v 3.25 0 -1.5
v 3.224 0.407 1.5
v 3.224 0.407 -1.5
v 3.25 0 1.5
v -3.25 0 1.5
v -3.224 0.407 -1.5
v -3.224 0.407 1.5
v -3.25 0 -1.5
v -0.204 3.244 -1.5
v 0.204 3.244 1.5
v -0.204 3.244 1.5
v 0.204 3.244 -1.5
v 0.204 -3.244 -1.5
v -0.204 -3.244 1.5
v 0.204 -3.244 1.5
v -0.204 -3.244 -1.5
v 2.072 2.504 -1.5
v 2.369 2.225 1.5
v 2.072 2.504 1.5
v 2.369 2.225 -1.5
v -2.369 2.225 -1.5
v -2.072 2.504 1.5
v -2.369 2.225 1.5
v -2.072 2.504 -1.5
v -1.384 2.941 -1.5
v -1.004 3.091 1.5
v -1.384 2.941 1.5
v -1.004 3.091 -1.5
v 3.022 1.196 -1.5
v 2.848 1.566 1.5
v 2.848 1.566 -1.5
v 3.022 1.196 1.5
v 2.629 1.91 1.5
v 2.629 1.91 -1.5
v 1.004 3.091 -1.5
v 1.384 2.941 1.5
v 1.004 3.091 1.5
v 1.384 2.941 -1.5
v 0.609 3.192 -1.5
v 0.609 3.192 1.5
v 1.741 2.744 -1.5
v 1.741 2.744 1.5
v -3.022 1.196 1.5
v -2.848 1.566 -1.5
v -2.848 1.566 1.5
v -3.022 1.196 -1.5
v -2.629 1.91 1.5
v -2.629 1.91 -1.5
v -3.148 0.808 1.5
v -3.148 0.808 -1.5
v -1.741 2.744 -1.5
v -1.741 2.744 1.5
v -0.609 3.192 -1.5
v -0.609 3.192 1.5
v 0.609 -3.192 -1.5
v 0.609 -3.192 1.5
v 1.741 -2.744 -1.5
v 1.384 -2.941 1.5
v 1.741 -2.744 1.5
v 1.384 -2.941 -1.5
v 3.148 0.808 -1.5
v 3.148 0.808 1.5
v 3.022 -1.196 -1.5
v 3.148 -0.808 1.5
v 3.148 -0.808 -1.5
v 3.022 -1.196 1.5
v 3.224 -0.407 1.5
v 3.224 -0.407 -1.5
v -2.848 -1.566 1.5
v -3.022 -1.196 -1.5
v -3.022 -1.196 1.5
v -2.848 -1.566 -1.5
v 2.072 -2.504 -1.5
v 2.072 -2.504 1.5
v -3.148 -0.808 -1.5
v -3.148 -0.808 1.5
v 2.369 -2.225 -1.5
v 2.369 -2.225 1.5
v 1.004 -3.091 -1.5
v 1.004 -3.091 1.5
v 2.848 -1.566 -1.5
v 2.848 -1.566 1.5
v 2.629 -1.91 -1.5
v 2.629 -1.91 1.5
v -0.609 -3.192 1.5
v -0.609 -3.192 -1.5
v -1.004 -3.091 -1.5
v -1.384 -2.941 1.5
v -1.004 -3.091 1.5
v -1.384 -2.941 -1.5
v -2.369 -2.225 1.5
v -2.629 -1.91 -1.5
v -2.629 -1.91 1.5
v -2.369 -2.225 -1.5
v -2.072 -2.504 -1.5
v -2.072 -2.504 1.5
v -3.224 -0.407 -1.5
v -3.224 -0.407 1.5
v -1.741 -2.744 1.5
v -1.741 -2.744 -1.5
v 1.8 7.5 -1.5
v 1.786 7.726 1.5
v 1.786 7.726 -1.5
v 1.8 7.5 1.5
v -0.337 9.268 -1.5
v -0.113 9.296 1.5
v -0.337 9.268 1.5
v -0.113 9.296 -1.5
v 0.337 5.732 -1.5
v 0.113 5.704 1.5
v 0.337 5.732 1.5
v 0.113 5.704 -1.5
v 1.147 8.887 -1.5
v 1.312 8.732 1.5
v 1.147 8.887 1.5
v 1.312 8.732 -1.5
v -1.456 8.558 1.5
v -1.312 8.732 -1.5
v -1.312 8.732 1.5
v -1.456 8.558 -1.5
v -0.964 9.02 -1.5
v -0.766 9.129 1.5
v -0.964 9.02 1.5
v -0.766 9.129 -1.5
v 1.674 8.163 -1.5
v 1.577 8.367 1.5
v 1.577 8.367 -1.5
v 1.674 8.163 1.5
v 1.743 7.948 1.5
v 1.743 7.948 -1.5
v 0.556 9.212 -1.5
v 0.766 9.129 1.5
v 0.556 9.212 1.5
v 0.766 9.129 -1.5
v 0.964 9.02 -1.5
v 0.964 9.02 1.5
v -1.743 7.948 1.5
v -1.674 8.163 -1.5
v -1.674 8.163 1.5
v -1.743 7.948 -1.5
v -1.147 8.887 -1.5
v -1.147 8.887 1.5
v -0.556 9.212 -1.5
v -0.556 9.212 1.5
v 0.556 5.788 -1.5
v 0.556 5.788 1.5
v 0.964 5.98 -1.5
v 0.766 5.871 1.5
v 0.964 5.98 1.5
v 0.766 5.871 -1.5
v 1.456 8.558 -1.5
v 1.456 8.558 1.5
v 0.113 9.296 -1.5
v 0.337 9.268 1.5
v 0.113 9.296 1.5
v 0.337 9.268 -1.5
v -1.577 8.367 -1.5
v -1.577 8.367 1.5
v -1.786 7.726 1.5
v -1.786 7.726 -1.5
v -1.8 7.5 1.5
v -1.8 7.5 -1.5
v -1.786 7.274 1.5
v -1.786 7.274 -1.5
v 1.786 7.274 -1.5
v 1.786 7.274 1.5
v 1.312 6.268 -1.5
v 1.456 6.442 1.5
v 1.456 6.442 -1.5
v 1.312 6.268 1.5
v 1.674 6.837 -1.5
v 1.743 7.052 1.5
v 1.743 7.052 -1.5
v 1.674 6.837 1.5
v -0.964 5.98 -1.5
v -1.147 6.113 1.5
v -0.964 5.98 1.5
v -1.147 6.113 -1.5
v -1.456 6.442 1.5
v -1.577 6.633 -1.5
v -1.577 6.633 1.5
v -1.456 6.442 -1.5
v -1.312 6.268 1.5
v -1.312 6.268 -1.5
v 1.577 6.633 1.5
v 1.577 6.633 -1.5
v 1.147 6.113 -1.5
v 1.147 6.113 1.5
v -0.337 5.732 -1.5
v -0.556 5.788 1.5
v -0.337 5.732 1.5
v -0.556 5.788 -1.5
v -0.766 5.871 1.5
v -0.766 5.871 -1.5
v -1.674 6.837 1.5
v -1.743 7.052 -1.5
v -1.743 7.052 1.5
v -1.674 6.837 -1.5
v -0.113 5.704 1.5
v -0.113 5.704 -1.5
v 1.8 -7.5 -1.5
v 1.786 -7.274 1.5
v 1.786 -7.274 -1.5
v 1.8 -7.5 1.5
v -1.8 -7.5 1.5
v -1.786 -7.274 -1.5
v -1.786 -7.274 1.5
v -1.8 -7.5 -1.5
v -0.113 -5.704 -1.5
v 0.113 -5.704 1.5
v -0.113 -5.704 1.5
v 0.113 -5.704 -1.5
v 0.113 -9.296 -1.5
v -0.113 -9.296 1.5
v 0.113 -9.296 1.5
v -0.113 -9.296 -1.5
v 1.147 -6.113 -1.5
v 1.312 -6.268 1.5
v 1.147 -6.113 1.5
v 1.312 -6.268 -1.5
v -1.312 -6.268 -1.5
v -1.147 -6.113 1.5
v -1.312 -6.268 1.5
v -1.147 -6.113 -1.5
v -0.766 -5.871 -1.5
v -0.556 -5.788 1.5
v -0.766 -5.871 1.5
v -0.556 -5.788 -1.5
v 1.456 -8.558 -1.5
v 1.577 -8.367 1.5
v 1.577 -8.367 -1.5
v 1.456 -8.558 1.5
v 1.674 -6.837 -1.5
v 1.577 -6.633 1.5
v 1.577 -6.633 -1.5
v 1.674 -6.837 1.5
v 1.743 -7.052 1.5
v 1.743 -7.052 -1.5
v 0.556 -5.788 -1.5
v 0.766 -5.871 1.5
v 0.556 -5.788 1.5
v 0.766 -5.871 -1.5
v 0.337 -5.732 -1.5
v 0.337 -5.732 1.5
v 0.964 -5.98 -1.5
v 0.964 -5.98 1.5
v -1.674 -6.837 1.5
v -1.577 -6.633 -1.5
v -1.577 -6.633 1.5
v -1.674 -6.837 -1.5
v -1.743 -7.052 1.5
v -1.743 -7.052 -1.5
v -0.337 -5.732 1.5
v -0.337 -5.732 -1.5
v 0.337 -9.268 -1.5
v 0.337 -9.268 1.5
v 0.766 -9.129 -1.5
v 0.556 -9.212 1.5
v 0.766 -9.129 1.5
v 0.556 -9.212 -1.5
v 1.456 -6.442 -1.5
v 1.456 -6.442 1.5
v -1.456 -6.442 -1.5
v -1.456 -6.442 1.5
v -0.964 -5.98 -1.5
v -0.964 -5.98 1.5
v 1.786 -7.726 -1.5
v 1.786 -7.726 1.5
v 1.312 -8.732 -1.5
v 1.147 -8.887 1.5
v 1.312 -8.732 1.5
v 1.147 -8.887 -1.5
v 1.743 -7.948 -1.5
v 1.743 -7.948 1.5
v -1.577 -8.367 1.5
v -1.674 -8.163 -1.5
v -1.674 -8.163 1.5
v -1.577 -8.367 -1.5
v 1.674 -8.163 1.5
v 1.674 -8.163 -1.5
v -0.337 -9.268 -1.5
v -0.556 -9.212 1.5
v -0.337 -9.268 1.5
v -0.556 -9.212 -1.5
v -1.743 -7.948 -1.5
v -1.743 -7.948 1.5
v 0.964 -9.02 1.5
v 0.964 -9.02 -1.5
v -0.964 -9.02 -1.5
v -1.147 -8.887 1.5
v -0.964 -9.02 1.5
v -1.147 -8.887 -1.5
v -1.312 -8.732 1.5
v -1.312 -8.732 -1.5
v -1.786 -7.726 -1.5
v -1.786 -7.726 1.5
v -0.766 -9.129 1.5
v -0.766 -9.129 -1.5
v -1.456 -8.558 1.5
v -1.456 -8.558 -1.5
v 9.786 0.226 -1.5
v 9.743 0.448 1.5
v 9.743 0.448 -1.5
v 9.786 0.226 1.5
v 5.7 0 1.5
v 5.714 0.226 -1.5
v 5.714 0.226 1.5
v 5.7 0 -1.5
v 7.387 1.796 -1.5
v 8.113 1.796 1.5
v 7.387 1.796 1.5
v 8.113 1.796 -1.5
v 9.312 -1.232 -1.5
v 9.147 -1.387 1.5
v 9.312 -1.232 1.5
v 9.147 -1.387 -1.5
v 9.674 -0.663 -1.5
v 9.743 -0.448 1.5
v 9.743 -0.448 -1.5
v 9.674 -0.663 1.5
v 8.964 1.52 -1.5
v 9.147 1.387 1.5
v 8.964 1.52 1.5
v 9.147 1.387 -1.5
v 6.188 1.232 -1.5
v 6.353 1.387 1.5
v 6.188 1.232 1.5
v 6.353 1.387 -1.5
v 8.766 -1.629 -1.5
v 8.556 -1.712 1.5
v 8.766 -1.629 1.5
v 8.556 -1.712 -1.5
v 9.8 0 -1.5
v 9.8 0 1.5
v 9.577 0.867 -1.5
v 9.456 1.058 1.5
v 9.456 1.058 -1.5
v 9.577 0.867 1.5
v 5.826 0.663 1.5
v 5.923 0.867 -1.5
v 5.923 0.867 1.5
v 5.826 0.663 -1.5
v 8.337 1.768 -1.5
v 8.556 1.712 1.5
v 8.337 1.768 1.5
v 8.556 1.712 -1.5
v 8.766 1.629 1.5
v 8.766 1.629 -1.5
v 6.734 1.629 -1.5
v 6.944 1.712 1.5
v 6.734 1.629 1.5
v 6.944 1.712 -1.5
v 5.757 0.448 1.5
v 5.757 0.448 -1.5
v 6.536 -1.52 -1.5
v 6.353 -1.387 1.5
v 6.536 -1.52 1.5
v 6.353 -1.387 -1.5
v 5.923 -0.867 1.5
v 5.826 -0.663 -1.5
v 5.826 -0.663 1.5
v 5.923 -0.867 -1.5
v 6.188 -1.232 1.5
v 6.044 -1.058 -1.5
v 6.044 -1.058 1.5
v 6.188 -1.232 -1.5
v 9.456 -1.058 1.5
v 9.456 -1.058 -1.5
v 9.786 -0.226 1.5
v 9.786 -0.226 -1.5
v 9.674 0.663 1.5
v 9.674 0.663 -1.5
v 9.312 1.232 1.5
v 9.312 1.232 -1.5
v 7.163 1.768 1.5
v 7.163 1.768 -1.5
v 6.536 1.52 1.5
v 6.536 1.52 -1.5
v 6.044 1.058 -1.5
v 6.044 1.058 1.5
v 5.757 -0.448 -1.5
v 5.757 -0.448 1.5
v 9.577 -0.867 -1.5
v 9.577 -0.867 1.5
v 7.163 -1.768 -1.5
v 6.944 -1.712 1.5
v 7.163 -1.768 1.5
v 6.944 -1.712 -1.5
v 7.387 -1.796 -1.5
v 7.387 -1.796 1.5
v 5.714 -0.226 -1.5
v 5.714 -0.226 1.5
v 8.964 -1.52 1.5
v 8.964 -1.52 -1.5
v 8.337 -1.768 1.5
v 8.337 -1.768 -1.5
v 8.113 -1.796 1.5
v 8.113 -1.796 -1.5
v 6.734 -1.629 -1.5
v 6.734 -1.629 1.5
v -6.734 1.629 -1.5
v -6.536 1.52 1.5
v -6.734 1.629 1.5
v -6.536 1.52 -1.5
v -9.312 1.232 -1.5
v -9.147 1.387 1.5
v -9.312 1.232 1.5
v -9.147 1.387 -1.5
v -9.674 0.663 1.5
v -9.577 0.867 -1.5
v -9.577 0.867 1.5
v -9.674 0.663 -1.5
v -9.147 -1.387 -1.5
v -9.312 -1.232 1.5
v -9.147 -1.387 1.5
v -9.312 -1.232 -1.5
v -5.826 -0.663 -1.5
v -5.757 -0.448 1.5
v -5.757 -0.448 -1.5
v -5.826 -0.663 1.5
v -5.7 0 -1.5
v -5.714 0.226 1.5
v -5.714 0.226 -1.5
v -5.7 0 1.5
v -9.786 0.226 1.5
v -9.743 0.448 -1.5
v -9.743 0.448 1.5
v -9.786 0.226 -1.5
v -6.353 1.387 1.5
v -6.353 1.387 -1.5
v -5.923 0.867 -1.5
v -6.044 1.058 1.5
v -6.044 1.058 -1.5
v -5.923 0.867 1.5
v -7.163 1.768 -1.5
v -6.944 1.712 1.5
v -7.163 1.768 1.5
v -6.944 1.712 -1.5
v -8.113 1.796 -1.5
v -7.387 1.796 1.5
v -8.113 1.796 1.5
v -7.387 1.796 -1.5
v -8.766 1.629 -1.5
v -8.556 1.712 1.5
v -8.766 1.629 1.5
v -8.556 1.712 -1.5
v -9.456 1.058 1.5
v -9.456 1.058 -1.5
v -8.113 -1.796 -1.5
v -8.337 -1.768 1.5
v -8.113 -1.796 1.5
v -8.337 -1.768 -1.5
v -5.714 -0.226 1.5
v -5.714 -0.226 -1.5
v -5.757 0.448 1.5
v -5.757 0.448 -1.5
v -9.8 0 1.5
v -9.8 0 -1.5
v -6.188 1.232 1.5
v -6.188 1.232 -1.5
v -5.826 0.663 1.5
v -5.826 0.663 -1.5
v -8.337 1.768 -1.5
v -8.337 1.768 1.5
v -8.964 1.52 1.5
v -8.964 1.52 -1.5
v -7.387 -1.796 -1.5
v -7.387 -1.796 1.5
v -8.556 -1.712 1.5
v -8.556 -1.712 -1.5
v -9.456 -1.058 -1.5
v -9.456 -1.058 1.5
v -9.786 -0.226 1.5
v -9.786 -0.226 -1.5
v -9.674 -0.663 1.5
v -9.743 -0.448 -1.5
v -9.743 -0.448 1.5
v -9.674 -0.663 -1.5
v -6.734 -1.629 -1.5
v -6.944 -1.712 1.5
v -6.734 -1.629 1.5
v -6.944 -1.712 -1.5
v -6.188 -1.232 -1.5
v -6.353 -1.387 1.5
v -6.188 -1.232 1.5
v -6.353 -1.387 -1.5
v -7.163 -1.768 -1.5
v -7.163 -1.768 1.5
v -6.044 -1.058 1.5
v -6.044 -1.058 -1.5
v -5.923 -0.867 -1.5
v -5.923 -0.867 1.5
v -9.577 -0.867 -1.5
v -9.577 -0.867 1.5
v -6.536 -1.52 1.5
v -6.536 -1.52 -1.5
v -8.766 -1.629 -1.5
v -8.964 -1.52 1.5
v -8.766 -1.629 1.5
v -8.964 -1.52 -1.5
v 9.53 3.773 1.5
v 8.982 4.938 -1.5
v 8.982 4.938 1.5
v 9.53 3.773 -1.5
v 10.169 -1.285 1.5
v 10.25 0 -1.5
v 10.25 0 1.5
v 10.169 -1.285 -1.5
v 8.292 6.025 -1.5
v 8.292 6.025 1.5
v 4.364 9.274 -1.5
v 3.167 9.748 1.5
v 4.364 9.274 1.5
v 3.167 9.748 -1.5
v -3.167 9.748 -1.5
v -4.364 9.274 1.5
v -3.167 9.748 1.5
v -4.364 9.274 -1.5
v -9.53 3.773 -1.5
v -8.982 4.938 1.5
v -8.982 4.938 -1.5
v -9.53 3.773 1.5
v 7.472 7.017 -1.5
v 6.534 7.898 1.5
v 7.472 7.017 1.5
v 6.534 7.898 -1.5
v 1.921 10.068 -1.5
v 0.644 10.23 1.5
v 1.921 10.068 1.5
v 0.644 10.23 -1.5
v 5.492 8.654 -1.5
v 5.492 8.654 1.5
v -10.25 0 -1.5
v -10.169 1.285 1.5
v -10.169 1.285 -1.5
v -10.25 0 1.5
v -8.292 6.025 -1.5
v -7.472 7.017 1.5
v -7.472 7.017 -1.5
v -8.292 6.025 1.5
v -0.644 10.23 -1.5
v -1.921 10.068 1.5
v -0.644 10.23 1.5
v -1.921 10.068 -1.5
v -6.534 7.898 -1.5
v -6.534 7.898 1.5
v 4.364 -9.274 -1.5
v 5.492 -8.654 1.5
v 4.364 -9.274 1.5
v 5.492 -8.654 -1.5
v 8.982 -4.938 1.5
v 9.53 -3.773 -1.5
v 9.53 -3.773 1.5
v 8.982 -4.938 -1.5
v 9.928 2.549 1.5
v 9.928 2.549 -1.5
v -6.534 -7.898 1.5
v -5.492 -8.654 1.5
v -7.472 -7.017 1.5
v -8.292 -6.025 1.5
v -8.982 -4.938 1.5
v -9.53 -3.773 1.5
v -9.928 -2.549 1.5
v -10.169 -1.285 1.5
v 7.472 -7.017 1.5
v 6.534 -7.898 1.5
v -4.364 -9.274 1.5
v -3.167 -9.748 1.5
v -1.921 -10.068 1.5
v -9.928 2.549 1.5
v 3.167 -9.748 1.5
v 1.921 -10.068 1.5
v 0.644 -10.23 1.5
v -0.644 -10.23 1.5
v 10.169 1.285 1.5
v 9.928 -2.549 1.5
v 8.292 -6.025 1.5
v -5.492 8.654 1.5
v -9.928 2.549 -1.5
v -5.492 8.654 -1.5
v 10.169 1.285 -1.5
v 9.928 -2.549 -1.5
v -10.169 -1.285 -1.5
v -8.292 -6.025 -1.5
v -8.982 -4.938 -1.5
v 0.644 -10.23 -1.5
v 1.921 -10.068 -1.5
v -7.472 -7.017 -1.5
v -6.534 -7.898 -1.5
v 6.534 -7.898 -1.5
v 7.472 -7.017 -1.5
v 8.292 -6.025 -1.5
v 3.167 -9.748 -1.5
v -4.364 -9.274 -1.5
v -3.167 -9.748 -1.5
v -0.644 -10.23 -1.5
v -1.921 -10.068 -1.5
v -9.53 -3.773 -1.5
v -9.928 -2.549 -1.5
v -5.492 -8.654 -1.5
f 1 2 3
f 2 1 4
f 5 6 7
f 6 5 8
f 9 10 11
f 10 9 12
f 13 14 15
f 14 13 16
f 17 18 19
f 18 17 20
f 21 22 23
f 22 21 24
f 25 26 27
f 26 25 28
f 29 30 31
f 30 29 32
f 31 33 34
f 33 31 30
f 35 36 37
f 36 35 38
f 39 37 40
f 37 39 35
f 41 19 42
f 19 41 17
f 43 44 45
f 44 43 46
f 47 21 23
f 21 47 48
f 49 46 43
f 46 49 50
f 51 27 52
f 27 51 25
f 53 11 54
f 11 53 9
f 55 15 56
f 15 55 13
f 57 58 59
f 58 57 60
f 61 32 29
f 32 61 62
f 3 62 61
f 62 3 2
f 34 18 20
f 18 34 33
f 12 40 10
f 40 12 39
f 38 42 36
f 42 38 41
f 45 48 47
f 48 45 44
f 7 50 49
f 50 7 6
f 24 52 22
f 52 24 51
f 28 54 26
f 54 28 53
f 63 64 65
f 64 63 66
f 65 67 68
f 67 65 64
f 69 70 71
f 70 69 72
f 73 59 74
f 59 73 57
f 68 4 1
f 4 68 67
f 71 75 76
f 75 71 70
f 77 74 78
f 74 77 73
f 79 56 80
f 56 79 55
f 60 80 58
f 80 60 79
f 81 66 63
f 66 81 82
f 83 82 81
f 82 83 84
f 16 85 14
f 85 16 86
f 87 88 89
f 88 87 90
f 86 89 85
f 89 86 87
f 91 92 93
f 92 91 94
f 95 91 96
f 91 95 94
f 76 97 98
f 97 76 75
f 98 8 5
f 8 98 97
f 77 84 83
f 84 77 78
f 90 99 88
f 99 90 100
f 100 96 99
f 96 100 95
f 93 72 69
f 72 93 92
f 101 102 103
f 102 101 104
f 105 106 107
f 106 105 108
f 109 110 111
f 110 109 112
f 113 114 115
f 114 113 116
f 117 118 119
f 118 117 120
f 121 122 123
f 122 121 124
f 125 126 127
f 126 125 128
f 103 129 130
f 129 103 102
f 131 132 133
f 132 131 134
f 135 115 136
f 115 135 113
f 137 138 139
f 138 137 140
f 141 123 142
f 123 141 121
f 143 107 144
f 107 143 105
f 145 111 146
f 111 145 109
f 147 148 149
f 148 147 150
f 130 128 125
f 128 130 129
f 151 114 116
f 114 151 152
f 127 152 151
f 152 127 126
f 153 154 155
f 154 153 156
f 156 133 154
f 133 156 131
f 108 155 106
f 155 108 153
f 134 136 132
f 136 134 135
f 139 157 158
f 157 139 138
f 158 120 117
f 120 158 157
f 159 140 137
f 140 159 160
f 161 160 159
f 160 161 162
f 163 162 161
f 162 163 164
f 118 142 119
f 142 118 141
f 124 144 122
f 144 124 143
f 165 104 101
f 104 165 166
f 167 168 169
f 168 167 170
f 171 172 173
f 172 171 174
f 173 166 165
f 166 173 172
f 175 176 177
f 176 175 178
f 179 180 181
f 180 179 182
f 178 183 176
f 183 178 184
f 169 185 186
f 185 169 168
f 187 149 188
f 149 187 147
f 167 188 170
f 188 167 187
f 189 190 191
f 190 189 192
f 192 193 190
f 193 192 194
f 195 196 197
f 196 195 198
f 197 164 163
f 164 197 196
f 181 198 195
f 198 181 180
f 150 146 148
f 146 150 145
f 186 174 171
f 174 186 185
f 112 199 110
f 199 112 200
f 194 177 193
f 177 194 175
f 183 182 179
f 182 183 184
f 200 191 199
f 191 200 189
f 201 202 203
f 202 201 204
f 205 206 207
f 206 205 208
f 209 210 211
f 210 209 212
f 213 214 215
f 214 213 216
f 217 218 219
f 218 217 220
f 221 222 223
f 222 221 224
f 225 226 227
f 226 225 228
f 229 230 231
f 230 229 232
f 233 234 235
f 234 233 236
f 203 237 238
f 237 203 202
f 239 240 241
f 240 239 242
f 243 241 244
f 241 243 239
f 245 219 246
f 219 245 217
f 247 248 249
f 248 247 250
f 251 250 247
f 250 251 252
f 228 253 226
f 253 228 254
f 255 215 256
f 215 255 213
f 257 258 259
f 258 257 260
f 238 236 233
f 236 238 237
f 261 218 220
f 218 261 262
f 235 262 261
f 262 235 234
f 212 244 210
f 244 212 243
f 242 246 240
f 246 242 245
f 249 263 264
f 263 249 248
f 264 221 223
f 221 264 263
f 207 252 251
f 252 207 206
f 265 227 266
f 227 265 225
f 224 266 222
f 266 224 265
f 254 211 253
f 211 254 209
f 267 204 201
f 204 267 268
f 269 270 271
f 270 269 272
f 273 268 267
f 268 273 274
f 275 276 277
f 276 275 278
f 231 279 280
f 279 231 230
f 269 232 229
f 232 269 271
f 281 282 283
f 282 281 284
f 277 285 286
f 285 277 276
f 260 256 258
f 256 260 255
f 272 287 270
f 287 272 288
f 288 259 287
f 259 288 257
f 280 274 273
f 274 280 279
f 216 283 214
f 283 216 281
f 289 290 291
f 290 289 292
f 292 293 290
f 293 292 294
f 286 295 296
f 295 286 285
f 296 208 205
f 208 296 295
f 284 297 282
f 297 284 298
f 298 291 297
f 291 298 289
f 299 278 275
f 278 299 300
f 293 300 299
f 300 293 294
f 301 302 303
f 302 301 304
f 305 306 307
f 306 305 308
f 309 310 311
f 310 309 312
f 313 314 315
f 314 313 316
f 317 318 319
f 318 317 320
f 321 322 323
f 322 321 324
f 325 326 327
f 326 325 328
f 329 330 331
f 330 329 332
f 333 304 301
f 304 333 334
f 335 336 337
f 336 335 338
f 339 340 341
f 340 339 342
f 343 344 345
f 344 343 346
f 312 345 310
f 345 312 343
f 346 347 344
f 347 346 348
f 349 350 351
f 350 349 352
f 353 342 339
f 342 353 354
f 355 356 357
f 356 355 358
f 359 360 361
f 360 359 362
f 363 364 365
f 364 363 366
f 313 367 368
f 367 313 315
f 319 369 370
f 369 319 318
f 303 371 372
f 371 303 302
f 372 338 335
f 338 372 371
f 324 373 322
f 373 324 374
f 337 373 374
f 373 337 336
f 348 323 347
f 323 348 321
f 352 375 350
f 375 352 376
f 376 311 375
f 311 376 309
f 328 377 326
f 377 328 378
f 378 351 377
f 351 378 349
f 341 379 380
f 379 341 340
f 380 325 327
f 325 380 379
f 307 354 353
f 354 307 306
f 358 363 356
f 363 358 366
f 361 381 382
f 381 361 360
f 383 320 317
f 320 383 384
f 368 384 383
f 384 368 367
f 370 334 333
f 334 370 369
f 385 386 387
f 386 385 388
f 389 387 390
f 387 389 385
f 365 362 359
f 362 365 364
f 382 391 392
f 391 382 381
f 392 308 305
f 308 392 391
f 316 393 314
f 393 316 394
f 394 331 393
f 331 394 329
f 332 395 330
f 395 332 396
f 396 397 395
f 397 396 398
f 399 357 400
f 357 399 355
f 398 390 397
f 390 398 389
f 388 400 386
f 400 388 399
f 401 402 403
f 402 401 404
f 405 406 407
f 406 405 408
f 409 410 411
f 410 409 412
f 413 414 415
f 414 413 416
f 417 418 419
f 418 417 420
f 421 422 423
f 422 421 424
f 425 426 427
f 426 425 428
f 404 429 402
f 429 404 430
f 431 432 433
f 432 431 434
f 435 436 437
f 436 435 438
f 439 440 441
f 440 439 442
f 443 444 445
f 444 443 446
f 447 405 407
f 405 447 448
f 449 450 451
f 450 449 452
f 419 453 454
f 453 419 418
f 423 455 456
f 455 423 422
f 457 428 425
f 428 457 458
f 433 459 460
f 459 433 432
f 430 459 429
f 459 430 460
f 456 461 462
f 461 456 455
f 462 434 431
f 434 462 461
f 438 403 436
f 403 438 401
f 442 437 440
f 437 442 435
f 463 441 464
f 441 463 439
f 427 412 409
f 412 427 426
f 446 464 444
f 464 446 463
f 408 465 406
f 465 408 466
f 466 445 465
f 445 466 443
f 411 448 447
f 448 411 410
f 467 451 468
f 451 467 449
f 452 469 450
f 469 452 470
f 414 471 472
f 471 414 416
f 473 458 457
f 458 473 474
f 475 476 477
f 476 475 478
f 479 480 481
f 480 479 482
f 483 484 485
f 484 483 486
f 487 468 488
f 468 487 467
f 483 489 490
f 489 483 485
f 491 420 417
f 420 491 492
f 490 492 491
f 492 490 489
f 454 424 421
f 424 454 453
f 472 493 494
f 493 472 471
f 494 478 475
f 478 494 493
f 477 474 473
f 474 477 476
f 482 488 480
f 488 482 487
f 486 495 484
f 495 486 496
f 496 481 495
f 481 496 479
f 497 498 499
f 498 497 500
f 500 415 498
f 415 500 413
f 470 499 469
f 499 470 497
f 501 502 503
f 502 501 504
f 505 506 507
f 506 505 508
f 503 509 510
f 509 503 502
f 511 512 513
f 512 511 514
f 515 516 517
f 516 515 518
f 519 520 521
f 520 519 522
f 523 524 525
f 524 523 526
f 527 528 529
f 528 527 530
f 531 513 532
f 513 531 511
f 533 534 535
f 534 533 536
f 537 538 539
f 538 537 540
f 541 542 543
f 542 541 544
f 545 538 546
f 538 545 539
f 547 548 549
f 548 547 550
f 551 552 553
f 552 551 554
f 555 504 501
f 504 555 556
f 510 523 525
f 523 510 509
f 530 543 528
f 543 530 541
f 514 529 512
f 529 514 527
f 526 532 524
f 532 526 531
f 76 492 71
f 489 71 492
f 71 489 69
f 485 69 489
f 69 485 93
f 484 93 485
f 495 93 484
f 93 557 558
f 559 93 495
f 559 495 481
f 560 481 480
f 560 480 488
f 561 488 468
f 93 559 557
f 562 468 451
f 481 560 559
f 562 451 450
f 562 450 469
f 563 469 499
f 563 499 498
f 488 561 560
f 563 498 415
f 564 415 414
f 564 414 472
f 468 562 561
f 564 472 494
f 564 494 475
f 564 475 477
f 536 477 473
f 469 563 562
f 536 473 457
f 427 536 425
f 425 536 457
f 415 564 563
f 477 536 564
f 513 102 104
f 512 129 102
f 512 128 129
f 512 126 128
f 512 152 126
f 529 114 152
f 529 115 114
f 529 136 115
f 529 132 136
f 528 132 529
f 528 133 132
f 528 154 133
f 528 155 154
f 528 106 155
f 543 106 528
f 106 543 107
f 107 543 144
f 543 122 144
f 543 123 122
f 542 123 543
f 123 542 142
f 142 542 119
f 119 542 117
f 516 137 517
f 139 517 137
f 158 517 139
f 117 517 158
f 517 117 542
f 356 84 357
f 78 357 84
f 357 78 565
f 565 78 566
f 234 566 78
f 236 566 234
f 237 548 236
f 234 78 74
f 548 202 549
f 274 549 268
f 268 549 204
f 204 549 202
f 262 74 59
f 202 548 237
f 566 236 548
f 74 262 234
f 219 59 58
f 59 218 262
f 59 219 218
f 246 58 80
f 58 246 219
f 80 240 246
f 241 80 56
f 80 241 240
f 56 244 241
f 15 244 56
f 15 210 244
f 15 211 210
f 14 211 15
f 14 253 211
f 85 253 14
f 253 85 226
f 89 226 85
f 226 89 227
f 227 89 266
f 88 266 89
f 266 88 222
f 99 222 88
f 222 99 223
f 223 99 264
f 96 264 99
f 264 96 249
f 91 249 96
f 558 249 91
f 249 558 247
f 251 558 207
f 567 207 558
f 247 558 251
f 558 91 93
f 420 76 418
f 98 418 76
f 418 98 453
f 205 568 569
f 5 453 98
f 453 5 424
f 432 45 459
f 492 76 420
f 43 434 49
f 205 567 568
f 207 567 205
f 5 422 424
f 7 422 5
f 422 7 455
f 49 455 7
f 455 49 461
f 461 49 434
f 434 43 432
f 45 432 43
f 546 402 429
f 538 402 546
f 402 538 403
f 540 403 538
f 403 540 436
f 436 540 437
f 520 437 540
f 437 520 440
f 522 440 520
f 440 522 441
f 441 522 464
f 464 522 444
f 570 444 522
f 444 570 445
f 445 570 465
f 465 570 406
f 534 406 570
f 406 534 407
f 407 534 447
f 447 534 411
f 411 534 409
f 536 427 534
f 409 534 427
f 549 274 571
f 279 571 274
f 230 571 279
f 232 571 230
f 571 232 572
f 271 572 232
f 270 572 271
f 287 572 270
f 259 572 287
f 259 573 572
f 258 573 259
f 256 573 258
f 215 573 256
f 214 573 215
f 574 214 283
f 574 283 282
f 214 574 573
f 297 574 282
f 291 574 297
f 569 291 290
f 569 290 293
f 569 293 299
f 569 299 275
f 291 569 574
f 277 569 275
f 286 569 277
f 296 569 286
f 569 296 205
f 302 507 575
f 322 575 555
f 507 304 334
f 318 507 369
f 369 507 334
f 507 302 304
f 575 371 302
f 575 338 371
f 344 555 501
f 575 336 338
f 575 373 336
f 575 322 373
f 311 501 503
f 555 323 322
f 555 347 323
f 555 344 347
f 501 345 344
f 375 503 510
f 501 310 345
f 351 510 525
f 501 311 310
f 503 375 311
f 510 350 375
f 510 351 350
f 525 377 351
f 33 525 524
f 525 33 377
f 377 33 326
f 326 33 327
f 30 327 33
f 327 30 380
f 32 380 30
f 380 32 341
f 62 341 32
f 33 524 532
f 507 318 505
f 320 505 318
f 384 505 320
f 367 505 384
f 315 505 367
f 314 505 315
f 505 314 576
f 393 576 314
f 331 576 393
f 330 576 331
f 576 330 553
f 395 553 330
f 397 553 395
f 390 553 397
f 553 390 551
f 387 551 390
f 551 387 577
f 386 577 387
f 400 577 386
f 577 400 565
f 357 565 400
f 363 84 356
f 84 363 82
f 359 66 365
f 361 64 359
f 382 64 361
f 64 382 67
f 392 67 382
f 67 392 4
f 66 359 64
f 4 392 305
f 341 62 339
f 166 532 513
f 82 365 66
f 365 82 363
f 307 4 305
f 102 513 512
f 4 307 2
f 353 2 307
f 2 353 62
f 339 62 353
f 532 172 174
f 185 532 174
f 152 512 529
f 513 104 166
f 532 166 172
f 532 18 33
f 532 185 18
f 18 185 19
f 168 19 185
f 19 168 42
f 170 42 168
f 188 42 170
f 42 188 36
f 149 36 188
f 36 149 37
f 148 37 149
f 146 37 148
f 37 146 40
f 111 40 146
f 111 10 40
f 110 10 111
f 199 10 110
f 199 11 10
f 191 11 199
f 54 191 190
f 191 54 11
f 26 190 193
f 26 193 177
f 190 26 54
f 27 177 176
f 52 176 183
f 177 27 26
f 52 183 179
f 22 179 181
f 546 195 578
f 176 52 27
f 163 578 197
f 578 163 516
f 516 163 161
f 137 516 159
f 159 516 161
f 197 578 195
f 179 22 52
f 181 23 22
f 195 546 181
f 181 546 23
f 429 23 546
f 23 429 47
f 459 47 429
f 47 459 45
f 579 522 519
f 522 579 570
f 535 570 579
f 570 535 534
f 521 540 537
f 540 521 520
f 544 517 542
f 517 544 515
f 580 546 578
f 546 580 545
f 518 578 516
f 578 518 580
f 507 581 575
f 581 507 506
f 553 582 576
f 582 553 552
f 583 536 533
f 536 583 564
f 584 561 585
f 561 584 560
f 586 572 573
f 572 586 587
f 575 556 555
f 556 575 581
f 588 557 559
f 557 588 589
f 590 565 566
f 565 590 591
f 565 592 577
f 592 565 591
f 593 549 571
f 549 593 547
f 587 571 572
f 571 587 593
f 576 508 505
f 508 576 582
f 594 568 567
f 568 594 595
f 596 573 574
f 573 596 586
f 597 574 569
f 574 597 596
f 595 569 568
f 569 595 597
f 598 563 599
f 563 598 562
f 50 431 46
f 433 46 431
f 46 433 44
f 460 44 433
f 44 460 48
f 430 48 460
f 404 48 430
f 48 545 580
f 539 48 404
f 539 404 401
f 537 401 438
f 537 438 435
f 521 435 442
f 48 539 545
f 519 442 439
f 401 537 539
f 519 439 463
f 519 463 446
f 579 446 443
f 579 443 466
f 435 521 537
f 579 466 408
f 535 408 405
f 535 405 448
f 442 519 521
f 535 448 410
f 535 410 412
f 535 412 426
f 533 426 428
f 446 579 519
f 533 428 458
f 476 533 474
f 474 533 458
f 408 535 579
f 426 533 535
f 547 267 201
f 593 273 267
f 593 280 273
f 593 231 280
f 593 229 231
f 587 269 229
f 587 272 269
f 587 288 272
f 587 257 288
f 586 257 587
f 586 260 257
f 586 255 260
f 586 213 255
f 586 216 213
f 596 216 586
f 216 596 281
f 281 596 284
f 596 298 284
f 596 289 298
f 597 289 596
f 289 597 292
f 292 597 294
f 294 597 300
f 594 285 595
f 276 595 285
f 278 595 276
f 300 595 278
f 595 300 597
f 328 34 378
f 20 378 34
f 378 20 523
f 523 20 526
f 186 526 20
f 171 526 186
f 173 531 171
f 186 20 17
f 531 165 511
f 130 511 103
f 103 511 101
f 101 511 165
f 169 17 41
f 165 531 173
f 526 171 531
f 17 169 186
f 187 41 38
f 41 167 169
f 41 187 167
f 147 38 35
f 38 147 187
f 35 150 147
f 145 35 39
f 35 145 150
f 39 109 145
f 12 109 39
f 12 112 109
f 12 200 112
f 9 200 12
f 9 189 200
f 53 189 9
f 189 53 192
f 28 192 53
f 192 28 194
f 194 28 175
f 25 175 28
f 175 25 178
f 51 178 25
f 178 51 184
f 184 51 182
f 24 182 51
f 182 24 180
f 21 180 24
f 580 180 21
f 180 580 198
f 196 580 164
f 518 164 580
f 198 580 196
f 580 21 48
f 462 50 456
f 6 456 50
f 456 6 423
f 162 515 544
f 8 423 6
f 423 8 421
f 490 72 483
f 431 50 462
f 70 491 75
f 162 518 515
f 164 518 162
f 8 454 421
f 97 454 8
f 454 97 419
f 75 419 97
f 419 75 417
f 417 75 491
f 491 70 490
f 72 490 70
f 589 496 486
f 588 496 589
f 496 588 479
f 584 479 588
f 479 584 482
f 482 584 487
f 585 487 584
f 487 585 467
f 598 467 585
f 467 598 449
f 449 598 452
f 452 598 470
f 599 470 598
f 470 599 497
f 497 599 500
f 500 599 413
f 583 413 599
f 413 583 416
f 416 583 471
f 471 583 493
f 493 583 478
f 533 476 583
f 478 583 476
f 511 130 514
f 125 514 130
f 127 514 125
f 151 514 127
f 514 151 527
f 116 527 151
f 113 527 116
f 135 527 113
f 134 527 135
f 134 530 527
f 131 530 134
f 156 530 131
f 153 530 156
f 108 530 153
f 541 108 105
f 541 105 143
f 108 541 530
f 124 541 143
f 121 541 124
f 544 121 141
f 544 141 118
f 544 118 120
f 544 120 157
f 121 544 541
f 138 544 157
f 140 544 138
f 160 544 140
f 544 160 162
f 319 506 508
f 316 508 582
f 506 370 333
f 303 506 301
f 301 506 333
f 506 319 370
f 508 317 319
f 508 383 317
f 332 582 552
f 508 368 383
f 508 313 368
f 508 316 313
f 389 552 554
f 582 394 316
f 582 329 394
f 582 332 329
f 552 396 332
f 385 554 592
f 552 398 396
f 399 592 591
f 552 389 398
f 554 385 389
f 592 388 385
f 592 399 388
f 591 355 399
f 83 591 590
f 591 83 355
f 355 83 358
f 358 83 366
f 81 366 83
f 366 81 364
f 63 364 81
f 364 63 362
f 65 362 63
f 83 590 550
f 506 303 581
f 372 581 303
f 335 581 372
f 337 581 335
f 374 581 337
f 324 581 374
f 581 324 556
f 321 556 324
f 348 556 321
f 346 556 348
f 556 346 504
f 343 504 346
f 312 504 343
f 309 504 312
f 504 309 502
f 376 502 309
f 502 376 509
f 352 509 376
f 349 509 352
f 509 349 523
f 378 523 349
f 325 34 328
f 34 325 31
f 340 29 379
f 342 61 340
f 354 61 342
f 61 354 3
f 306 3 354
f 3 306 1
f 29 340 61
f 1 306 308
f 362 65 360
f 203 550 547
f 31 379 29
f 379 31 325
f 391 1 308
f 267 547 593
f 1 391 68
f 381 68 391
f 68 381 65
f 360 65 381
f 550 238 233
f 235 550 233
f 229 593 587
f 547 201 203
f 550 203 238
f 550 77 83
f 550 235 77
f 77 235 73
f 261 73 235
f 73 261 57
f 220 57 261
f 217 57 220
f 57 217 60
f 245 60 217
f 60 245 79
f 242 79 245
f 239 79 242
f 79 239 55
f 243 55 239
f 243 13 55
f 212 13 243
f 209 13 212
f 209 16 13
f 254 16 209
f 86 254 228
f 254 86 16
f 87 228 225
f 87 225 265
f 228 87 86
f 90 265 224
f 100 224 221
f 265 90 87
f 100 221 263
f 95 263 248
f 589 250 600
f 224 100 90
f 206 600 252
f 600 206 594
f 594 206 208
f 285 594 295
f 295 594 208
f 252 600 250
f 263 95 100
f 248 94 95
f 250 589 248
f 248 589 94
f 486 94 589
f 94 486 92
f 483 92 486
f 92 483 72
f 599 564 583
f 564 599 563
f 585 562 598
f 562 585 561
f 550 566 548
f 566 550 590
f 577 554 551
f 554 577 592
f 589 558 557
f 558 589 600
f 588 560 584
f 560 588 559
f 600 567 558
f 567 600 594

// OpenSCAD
$fn = 50;


difference() {
	union() {
		translate(v = [0, 0, -1.5000000000]) {
			rotate(a = [0, 0, 0]) {
				cylinder(h = 3, r = 10.2500000000);
			}
		}
	}
	union() {
		translate(v = [0, 0, -125.0000000000]) {
			rotate(a = [0, 0, 0]) {
				cylinder(h = 250, r = 3.2500000000);
			}
		}
		translate(v = [0, 7.5000000000, -125.0000000000]) {
			rotate(a = [0, 0, 0]) {
				cylinder(h = 250, r = 1.8000000000);
			}
		}
		translate(v = [0, -7.5000000000, -125.0000000000]) {
			rotate(a = [0, 0, 0]) {
				cylinder(h = 250, r = 1.8000000000);
			}
		}
		translate(v = [7.7500000000, 0, -125.0000000000]) {
			rotate(a = [0, 0, 0]) {
				hull() {
					translate(v = [0.2500000000, 0, 0]) {
						rotate(a = [0, 0, 0]) {
							translate(v = [0, 0, 0]) {
								rotate(a = [0, 0, 0]) {
									cylinder(h = 250, r = 1.8000000000);
								}
							}
						}
					}
					translate(v = [-0.2500000000, 0, 0]) {
						rotate(a = [0, 0, 0]) {
							translate(v = [0, 0, 0]) {
								rotate(a = [0, 0, 0]) {
									cylinder(h = 250, r = 1.8000000000);
								}
							}
						}
					}
				}
			}
		}
		translate(v = [-7.7500000000, 0, -125.0000000000]) {
			rotate(a = [0, 0, 0]) {
				hull() {
					translate(v = [0.2500000000, 0, 0]) {
						rotate(a = [0, 0, 0]) {
							translate(v = [0, 0, 0]) {
								rotate(a = [0, 0, 0]) {
									cylinder(h = 250, r = 1.8000000000);
								}
							}
						}
					}
					translate(v = [-0.2500000000, 0, 0]) {
						rotate(a = [0, 0, 0]) {
							translate(v = [0, 0, 0]) {
								rotate(a = [0, 0, 0]) {
									cylinder(h = 250, r = 1.8000000000);
								}
							}
						}
					}
				}
			}
		}
	}
}
